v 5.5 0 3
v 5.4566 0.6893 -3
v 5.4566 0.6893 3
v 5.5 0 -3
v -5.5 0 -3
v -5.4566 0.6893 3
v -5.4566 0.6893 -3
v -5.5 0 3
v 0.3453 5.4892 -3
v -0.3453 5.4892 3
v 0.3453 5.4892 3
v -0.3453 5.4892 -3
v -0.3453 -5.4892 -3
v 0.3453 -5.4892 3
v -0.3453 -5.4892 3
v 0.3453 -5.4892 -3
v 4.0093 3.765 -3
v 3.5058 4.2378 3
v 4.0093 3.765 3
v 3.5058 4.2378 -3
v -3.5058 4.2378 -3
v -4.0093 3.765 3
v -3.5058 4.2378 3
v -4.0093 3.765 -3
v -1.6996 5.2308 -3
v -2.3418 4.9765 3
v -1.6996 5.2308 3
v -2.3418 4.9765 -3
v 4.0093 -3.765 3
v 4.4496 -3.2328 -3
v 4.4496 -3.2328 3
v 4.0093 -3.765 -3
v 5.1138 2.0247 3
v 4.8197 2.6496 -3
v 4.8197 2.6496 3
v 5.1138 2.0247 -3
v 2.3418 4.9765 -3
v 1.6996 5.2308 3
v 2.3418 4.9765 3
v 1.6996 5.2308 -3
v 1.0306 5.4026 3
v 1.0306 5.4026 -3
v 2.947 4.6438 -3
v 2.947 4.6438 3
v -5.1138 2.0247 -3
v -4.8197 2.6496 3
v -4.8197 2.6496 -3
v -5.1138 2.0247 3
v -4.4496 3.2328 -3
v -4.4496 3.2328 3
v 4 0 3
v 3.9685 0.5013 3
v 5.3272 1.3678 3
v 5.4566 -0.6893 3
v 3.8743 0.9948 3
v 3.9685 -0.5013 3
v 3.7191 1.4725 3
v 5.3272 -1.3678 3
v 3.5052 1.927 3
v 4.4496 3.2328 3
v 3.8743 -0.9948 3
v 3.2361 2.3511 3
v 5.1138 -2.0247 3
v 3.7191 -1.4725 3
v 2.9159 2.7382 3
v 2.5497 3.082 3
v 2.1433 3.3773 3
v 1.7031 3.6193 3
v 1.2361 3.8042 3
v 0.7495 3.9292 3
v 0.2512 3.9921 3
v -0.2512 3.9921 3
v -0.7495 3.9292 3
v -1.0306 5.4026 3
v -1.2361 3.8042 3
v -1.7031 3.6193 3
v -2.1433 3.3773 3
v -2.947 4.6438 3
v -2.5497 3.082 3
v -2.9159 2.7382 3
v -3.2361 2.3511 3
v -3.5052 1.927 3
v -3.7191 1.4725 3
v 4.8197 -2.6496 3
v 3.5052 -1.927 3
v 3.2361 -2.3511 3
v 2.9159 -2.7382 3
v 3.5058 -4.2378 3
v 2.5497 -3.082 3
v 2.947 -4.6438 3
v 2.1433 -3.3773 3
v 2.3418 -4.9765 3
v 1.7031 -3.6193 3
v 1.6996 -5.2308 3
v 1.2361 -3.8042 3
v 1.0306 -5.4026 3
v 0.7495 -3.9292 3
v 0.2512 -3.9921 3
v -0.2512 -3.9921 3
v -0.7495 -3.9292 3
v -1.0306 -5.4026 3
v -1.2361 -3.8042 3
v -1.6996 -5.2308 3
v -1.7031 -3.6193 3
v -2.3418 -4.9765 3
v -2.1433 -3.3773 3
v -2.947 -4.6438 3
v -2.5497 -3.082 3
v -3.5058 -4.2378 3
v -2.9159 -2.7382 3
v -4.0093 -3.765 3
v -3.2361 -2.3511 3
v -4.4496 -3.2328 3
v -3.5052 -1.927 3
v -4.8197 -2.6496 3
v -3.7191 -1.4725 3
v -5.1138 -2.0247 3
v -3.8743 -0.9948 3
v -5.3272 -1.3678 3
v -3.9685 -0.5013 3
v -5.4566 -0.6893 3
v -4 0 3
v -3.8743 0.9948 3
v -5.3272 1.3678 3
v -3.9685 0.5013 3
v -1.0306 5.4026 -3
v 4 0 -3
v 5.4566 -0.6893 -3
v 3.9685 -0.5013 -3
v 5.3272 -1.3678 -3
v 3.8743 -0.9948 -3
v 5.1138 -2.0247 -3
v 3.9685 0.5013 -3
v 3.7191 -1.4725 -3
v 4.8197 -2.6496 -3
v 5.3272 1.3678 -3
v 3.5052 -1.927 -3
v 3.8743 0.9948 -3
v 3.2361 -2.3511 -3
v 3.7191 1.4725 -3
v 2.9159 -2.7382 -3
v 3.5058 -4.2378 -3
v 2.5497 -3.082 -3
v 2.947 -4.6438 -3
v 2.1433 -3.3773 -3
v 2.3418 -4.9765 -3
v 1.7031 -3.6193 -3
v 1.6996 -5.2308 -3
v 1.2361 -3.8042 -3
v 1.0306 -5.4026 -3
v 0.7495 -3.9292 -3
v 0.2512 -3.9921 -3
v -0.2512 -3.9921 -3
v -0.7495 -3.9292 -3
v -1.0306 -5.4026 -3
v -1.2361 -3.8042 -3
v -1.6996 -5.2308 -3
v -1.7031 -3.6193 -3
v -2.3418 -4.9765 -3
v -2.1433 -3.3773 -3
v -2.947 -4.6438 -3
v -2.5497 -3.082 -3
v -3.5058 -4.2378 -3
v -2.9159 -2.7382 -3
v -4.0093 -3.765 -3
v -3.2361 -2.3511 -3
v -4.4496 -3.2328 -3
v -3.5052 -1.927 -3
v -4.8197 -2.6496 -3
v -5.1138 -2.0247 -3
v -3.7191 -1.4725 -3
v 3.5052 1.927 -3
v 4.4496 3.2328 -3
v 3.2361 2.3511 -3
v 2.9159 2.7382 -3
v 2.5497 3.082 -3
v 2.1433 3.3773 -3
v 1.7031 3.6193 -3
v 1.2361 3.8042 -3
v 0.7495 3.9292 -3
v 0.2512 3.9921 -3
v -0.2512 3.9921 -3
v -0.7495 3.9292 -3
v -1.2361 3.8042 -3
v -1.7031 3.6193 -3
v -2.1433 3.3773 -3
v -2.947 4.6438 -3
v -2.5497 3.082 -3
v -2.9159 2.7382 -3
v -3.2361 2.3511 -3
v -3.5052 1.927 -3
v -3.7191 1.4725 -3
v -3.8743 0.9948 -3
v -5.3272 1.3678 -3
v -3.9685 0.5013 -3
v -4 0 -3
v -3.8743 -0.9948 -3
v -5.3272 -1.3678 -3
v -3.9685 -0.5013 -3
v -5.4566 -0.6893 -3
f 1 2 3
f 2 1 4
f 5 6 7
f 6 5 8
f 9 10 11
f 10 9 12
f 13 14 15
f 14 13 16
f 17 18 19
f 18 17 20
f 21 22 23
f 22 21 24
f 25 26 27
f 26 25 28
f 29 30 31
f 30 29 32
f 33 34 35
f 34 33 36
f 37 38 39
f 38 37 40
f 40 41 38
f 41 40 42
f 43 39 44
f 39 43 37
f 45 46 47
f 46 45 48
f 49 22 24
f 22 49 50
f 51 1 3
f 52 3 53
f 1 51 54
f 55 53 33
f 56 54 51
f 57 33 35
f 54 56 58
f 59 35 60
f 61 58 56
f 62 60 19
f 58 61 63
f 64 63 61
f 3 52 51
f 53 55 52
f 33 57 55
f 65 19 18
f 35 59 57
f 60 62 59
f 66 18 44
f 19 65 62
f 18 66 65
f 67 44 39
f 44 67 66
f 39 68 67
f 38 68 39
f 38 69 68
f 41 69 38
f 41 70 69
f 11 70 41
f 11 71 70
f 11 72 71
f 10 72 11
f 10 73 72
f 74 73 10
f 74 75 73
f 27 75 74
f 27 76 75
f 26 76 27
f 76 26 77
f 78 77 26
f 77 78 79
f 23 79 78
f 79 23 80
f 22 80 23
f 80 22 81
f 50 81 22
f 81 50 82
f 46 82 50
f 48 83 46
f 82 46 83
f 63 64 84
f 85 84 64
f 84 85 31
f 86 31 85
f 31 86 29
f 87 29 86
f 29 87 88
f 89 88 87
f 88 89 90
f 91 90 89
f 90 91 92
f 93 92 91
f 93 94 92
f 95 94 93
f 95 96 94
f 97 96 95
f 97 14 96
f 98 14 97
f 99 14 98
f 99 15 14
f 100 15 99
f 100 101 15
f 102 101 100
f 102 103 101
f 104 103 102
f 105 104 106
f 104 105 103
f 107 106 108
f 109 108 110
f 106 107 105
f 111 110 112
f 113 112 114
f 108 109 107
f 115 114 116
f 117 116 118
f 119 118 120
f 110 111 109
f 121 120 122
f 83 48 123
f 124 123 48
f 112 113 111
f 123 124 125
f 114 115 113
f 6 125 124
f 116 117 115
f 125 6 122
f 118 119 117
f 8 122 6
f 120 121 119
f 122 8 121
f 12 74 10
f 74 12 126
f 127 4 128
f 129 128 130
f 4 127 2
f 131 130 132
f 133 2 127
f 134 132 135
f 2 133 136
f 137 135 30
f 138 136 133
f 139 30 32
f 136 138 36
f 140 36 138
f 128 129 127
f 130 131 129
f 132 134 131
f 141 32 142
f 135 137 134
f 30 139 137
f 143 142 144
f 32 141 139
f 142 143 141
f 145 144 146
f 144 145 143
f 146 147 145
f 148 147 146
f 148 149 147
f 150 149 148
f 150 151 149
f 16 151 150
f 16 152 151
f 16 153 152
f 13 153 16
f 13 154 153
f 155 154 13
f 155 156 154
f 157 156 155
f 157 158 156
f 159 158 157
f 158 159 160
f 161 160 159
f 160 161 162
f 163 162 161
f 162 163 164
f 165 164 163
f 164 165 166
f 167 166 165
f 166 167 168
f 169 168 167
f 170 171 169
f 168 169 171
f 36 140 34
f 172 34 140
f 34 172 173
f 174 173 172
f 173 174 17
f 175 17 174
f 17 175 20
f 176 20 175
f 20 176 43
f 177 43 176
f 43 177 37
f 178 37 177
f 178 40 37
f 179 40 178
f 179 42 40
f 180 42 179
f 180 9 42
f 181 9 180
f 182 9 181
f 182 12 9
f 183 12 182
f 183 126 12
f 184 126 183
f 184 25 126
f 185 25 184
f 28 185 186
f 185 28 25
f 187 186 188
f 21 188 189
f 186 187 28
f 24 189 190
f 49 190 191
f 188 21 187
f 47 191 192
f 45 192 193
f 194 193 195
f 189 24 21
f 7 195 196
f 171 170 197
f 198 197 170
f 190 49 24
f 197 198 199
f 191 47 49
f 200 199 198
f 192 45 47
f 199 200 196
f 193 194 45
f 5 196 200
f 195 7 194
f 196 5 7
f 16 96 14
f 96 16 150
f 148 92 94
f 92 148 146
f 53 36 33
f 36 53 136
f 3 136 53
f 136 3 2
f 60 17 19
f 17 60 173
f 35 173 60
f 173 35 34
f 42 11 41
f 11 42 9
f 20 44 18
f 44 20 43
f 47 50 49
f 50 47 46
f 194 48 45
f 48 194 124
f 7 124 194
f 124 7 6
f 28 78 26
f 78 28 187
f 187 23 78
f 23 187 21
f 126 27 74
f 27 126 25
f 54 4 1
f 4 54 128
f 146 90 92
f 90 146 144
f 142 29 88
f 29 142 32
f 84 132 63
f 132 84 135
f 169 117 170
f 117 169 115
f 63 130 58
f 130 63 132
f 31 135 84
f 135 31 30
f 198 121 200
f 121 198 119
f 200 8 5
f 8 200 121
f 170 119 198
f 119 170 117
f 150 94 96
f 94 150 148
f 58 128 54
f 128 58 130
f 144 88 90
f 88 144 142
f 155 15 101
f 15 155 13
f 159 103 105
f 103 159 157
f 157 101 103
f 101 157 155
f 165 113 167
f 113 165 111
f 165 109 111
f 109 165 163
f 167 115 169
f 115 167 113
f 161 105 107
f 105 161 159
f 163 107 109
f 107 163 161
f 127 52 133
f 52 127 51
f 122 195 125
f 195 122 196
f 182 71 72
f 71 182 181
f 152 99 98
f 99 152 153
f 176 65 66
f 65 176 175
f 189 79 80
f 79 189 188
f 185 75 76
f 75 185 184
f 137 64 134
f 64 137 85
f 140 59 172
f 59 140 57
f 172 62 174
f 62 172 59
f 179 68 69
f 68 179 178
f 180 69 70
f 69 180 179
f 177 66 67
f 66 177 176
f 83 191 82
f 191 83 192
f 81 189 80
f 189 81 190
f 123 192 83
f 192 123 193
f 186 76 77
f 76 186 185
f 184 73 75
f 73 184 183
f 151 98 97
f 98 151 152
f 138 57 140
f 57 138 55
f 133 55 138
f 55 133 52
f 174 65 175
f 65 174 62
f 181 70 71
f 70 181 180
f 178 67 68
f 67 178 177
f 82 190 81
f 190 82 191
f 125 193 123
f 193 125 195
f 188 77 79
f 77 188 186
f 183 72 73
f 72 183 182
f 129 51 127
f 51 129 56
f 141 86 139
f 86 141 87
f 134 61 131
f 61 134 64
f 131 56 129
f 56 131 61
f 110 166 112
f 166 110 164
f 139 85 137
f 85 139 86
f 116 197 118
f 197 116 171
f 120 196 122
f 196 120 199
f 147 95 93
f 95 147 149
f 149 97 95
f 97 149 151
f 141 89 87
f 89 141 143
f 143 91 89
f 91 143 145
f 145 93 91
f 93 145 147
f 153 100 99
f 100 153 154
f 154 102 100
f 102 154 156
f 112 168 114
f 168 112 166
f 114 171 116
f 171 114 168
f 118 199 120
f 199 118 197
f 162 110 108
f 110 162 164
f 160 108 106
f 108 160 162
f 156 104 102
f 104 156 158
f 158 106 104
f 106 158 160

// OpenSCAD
$fn = 50;


difference() {
	union() {
		translate(v = [0, 0, -3.0000000000]) {
			cylinder(h = 6, r = 5.5000000000);
		}
	}
	union() {
		translate(v = [0, 0, -100.0000000000]) {
			cylinder(h = 200, r = 4.0000000000);
		}
	}
}
